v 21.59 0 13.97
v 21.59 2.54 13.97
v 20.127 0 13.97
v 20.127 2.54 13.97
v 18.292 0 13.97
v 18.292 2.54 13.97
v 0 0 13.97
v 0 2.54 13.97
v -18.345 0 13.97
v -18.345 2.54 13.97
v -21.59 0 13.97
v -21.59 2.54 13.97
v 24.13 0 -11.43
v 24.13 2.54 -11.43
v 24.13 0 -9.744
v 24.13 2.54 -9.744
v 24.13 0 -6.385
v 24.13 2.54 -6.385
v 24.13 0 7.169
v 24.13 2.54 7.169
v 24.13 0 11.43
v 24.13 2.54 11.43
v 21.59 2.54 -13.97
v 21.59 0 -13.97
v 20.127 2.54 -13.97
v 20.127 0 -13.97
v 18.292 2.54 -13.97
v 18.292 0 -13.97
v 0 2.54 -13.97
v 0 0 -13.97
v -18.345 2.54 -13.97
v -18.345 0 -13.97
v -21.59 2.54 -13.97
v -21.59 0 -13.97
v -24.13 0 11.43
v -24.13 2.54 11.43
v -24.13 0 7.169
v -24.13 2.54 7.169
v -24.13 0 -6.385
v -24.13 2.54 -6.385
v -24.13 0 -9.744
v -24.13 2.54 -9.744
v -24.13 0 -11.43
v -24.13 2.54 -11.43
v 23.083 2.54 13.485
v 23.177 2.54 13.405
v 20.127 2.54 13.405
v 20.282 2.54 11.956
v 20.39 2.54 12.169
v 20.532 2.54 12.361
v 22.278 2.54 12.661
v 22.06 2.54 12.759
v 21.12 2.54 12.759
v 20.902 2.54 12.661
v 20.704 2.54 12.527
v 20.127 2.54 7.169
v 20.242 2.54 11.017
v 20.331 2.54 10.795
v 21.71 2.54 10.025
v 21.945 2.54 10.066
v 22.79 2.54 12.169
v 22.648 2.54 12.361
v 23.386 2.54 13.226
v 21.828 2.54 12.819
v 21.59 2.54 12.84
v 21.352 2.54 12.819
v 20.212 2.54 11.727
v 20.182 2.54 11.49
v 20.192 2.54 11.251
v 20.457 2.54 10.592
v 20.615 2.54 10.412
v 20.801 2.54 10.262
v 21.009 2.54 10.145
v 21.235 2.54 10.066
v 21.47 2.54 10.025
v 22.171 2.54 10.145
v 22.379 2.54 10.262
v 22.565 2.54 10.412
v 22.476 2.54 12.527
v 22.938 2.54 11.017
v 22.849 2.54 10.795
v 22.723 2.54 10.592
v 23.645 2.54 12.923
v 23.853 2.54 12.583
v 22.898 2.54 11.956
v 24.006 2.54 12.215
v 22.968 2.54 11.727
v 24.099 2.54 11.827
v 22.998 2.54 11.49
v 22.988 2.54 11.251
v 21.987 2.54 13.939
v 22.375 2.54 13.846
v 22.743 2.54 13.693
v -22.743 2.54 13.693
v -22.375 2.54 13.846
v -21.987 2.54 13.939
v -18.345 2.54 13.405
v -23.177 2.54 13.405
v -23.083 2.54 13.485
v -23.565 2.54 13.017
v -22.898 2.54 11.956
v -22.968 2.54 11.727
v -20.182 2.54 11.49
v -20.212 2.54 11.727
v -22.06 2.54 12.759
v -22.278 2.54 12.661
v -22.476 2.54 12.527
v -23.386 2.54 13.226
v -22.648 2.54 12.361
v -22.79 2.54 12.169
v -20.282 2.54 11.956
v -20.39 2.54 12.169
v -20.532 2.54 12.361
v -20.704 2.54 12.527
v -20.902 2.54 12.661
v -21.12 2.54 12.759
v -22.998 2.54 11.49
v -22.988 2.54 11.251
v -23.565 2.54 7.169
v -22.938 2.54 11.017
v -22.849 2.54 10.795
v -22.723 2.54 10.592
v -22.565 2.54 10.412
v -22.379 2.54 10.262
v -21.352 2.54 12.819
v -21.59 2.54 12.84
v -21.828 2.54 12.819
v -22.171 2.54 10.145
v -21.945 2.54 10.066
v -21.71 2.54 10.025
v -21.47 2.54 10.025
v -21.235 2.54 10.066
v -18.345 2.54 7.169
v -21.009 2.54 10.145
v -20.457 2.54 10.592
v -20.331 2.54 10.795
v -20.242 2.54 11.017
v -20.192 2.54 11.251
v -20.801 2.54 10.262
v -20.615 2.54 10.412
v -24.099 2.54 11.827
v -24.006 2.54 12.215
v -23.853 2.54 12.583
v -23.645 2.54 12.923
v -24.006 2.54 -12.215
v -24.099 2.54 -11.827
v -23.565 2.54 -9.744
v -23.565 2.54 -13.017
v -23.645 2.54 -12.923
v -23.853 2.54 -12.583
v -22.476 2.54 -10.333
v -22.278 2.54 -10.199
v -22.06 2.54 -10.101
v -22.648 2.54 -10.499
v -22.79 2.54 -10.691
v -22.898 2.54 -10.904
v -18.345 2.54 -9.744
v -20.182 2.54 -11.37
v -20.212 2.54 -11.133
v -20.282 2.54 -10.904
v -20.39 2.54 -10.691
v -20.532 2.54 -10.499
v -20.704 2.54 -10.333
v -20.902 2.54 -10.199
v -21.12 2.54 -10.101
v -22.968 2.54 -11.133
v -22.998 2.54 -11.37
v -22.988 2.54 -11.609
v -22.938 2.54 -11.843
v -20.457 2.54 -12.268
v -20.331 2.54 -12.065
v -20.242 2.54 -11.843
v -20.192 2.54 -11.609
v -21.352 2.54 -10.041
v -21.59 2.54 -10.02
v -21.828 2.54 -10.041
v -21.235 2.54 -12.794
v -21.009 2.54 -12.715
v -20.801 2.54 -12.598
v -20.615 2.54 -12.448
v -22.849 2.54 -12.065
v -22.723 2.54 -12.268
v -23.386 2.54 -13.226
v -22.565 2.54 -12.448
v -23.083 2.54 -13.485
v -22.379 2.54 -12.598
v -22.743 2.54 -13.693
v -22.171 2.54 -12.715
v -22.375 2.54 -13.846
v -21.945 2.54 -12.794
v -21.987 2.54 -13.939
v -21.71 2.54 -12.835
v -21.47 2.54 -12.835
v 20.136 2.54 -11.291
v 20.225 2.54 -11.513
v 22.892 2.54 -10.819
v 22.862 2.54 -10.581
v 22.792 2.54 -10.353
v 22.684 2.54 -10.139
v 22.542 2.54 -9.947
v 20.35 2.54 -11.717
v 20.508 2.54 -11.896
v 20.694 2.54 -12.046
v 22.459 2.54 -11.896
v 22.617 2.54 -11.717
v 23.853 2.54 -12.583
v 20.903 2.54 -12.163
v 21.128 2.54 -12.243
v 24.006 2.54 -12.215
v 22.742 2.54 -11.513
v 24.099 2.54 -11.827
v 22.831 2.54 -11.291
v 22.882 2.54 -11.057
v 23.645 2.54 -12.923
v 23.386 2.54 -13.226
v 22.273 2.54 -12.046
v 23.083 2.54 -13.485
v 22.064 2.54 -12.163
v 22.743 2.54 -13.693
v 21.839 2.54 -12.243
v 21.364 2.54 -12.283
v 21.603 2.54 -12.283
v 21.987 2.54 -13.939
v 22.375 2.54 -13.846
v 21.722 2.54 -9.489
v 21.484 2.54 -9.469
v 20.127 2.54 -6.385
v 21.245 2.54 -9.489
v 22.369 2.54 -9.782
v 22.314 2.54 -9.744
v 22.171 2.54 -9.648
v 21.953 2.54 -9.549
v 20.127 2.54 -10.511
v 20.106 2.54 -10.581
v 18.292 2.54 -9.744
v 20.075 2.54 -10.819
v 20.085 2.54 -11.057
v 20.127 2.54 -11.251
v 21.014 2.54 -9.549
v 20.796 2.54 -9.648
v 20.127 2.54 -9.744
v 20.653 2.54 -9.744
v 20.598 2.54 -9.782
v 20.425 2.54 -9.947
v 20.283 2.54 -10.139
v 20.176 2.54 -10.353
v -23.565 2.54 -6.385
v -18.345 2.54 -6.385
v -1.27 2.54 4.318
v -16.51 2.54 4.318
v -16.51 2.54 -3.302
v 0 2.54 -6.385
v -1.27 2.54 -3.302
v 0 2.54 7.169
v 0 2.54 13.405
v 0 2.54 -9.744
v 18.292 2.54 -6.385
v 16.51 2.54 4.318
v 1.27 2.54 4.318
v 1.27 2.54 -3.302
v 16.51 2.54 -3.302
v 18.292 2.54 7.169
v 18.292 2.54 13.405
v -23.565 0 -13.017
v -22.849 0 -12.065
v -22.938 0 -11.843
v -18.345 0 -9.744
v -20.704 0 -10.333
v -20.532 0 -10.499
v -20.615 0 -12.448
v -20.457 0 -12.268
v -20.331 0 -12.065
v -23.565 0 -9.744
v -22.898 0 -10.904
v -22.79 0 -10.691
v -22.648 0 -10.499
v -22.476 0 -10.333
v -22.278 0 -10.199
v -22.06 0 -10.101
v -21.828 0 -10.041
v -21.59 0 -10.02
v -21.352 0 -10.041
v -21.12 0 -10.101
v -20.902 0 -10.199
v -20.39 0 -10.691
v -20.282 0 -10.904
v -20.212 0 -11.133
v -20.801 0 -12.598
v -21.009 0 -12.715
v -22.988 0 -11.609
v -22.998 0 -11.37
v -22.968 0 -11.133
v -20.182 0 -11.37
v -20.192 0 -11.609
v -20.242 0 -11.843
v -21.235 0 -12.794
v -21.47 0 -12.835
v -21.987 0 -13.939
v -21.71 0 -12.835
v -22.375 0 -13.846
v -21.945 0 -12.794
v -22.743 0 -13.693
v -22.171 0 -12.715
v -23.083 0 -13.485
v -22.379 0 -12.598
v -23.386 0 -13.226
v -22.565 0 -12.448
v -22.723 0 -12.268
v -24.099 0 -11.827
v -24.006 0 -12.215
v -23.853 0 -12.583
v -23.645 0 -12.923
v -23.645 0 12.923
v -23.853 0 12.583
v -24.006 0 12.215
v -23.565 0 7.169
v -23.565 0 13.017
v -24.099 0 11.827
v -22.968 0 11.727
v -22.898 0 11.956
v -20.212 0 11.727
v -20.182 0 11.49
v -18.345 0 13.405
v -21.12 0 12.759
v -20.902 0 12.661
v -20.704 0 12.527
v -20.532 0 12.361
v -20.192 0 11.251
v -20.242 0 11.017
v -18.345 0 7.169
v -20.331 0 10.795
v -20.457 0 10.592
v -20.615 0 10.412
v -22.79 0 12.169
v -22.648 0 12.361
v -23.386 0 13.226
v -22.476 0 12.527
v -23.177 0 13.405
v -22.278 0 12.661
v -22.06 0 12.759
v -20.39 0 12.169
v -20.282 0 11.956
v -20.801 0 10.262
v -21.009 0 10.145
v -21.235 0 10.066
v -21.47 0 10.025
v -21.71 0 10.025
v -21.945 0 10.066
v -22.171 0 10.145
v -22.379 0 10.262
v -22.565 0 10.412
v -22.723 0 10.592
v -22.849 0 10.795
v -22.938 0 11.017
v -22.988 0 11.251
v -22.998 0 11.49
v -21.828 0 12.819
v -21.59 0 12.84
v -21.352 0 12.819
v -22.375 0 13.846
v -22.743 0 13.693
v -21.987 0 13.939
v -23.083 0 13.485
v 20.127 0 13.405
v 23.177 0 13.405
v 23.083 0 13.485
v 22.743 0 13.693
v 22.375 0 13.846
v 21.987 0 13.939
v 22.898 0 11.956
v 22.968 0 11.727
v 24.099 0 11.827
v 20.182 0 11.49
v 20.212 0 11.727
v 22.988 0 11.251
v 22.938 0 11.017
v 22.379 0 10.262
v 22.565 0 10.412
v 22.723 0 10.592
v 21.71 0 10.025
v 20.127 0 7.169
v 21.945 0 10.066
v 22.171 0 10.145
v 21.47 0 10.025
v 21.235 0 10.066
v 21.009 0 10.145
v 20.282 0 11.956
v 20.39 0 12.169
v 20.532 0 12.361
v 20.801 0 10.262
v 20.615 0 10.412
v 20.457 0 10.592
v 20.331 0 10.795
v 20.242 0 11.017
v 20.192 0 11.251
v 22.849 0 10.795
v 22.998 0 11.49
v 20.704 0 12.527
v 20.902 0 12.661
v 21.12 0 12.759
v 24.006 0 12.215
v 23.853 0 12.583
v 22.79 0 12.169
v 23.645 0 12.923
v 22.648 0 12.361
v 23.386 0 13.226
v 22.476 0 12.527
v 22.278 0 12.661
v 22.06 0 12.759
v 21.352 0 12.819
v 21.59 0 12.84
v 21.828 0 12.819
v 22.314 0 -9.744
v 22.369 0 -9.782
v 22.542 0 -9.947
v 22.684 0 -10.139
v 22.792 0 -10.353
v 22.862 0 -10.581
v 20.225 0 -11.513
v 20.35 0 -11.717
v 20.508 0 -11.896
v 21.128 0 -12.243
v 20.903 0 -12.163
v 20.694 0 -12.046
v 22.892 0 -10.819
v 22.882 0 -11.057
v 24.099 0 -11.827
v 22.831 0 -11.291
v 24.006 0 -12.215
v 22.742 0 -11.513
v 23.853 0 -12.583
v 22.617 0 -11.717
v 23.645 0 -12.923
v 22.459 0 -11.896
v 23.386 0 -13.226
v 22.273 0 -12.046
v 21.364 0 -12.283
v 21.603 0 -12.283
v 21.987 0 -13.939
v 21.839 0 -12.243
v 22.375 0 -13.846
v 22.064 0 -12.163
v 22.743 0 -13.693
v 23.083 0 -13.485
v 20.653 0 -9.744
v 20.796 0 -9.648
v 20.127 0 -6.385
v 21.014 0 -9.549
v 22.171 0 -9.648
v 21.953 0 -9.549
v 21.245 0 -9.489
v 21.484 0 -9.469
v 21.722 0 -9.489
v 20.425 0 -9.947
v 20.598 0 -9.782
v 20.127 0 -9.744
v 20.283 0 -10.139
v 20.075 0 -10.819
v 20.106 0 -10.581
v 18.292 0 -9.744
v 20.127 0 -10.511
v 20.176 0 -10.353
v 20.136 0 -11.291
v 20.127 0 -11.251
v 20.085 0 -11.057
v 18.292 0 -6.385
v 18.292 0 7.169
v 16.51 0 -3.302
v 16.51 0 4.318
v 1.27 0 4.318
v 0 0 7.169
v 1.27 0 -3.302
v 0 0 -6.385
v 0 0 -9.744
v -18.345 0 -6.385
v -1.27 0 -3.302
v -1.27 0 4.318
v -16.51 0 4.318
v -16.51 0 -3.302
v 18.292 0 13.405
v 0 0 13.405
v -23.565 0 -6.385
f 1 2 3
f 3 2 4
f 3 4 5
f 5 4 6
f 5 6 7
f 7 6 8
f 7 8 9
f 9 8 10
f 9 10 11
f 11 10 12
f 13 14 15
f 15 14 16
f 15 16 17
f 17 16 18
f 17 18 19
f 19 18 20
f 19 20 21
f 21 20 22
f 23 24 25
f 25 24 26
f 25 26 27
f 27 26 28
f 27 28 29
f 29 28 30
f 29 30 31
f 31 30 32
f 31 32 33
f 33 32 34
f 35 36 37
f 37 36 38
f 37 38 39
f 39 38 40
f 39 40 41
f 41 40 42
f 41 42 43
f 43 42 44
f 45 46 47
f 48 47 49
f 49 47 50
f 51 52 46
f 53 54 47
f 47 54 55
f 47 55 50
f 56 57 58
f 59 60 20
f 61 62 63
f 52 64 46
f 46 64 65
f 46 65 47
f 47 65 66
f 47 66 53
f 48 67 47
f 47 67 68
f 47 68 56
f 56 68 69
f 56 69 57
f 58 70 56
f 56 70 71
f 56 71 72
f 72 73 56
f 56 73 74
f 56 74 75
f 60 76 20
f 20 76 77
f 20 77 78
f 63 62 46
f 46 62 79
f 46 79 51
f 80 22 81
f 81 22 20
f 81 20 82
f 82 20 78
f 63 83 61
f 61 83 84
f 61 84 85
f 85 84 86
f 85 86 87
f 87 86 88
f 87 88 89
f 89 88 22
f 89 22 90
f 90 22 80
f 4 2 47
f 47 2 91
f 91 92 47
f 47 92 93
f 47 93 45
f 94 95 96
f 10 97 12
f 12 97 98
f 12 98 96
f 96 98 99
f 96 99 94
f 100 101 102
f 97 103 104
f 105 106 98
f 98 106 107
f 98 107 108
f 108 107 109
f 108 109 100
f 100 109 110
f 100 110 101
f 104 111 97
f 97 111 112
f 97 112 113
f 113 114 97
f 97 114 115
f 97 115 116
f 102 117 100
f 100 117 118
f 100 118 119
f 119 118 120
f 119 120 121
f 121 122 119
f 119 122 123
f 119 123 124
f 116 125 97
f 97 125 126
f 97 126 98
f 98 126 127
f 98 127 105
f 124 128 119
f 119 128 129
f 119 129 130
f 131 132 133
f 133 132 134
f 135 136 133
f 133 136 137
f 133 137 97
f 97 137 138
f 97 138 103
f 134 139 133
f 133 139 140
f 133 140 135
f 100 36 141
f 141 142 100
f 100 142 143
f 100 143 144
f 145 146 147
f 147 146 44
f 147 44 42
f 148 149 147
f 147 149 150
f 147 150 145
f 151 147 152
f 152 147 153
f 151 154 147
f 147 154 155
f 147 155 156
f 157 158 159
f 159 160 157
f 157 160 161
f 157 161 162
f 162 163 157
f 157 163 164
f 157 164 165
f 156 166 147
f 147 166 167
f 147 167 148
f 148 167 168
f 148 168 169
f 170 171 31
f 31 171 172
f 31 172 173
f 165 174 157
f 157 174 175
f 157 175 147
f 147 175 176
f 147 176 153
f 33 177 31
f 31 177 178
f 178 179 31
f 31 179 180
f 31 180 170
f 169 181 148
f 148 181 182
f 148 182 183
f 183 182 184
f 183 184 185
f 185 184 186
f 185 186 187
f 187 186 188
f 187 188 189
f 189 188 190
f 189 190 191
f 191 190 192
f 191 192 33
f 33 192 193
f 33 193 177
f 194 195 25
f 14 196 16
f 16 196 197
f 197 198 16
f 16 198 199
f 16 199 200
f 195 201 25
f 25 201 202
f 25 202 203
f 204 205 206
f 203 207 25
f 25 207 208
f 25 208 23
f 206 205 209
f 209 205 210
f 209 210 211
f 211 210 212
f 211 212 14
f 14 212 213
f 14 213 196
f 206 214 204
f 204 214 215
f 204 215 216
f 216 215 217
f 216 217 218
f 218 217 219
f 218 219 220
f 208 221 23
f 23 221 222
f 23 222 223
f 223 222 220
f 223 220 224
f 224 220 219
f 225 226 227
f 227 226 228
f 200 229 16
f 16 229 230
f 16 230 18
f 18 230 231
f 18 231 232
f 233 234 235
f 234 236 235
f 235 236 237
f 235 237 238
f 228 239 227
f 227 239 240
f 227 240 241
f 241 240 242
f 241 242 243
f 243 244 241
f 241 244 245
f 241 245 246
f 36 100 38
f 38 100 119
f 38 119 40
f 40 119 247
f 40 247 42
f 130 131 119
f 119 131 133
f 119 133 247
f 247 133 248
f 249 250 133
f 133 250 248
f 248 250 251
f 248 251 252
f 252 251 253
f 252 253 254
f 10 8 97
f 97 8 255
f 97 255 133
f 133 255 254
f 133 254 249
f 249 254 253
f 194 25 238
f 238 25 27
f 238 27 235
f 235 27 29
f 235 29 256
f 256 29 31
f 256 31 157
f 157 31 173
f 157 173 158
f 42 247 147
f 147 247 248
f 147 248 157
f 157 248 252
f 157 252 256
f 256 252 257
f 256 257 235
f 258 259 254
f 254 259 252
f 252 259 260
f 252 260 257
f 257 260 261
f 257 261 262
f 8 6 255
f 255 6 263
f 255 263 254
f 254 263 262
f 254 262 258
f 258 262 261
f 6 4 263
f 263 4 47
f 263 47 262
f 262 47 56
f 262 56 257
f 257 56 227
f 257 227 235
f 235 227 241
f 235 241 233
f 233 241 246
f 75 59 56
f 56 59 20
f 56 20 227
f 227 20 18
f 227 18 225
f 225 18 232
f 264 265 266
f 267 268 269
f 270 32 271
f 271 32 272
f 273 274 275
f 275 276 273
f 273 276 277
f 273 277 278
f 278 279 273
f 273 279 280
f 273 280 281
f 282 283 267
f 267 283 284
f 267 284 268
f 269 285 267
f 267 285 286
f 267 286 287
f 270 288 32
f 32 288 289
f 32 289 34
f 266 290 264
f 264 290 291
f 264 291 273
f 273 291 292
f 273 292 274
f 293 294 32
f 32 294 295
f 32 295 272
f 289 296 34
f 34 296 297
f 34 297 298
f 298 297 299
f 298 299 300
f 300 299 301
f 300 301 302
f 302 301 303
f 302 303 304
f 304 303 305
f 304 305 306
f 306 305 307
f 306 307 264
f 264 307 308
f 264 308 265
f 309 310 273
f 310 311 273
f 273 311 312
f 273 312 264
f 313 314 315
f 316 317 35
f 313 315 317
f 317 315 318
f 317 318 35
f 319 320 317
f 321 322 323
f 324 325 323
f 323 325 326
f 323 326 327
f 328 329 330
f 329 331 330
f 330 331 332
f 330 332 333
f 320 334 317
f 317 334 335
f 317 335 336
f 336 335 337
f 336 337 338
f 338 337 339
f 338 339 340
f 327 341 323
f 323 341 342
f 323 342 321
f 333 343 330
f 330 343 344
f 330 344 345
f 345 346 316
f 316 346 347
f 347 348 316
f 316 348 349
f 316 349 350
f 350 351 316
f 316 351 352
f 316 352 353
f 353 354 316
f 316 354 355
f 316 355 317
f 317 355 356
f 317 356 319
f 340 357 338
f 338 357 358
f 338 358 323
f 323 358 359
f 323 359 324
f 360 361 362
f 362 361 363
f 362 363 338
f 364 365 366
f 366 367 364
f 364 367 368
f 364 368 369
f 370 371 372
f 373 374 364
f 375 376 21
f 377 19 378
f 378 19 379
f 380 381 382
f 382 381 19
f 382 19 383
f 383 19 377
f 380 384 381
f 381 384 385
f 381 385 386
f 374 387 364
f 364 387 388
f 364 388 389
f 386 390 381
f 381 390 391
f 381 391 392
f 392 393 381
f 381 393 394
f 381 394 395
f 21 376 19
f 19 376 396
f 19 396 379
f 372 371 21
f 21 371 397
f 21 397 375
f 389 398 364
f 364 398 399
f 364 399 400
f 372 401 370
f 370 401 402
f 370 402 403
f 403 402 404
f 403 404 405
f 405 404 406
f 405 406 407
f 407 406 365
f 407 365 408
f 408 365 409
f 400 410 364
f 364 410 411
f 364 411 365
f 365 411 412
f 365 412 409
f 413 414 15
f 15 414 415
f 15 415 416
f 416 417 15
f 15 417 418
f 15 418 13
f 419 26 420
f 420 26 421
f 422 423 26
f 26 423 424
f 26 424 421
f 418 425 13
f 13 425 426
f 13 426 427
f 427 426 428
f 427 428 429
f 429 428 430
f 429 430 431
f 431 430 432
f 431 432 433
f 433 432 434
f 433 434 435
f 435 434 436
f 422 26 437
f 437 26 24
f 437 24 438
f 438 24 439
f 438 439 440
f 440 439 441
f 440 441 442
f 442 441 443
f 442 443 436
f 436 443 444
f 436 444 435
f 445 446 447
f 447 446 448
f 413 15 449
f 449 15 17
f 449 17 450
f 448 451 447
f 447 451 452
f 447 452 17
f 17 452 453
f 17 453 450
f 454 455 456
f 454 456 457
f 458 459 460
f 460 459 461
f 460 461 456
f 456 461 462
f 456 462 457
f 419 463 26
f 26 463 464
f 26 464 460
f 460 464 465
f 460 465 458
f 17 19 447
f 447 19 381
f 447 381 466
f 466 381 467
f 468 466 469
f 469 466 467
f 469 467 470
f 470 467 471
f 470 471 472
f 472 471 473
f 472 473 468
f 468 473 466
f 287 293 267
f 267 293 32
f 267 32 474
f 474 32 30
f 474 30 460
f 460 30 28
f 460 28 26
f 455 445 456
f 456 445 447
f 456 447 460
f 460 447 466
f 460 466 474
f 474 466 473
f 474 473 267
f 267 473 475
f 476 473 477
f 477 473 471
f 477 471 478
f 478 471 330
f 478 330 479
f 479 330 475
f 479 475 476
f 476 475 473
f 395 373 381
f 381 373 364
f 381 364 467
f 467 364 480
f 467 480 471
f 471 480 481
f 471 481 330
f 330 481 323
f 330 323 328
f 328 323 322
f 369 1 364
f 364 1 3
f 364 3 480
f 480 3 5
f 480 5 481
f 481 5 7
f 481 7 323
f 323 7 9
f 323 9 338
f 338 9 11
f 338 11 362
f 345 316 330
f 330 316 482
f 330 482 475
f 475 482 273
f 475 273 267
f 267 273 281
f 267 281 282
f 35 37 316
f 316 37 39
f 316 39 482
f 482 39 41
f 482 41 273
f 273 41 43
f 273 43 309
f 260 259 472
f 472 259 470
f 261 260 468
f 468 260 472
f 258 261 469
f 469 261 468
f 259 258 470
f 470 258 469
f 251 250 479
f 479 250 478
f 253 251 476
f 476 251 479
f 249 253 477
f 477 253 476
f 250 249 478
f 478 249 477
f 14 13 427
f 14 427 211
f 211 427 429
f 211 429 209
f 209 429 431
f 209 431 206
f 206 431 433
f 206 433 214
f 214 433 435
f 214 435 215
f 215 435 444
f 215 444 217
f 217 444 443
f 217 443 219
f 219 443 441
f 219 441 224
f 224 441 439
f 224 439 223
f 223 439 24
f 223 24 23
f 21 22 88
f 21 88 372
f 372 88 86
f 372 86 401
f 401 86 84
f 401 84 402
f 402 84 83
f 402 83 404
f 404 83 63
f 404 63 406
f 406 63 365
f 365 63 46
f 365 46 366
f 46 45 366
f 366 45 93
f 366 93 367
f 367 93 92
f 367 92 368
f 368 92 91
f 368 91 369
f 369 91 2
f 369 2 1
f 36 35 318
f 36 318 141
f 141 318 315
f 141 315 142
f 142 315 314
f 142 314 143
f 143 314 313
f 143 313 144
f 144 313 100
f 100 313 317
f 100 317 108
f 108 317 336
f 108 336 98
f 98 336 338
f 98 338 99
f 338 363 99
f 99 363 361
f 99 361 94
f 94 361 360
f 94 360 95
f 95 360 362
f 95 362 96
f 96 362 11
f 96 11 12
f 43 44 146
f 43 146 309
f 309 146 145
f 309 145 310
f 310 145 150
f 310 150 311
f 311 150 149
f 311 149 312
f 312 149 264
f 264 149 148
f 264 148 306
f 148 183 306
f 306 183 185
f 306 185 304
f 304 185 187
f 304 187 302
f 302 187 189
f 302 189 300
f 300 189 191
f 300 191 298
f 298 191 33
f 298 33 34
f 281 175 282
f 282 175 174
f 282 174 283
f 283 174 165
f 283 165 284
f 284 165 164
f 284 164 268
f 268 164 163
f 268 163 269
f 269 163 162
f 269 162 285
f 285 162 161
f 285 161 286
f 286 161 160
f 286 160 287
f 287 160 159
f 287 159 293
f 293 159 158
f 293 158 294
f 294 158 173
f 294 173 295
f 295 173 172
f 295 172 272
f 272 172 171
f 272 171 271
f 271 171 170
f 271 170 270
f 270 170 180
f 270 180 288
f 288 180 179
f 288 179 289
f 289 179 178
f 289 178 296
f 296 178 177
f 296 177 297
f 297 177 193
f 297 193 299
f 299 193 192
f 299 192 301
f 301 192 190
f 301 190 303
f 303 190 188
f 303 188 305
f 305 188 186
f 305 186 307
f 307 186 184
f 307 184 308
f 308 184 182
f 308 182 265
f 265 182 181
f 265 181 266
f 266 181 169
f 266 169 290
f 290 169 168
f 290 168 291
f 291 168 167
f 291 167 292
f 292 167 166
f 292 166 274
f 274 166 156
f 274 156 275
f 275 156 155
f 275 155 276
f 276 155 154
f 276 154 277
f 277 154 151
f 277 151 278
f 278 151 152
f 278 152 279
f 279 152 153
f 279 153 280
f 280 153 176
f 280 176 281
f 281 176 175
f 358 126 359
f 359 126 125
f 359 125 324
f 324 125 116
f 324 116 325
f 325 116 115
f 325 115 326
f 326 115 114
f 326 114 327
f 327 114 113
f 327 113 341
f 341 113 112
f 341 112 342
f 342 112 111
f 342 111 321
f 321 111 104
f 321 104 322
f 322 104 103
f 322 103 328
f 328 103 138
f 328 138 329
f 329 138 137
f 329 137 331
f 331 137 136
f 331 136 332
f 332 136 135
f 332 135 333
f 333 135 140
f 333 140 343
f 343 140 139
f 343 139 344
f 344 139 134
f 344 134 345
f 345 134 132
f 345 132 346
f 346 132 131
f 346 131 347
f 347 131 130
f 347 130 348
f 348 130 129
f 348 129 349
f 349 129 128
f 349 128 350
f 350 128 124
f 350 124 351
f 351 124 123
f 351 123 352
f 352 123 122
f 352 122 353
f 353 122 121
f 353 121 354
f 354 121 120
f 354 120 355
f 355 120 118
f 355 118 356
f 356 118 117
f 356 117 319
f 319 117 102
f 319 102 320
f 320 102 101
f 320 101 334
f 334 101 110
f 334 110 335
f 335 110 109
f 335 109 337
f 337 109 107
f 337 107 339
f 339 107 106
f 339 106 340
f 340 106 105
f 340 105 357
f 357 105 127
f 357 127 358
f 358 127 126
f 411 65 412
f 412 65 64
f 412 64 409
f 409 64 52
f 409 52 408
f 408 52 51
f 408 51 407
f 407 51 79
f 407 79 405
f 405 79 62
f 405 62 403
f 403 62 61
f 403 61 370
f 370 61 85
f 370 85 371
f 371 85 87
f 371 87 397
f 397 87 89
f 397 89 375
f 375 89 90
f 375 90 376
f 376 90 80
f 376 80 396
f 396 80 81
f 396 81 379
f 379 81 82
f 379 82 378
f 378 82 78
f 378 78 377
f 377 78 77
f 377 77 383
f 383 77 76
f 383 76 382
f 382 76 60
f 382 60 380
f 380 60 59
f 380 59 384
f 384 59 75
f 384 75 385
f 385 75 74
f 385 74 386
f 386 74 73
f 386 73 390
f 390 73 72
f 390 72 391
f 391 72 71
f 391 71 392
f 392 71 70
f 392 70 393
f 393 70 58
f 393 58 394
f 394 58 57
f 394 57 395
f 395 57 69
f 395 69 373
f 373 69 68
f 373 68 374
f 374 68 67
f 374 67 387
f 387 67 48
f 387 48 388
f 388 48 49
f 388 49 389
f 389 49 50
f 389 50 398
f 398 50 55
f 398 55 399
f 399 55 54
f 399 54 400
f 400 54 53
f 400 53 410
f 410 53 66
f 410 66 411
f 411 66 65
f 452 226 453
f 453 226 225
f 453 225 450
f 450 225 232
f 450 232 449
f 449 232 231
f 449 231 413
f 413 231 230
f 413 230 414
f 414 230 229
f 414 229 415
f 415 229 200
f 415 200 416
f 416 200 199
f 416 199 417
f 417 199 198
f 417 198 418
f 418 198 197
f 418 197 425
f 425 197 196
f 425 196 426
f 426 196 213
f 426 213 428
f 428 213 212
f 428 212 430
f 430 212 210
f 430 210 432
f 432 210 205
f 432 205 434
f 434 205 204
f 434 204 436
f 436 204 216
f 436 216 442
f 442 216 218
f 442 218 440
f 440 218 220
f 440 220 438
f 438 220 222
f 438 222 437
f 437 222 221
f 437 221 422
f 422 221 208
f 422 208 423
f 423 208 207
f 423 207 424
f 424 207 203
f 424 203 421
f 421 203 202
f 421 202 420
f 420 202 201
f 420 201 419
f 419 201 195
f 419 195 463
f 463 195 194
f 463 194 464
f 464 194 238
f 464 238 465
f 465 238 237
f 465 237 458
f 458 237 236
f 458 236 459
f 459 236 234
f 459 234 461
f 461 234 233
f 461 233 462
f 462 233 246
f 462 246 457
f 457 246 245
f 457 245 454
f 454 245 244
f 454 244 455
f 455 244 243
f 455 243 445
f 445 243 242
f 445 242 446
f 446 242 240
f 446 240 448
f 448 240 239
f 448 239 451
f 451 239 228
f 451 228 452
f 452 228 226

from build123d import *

# Parameters (mm, degrees)
SKETCH1_W                   = 48.26
SKETCH1_H                   = 27.94
BOSS_EXTRUDE1_DEPTH         = 2.54
SKETCH2_W                   = 15.24
SKETCH2_H                   = 7.62
CUT_EXTRUDE1_DEPTH          = 15.494
FILLET1_R                   = 2.54
F_34_0_111_DIAMETER_HOLE1_D = 2.8194


with BuildPart() as part:
    # Sketch1 → Boss-Extrude1 (new body)
    with BuildSketch(Plane(origin=(0, 0, 0), x_dir=(1, 0, 0), z_dir=(0, 1, 0))):
        Rectangle(SKETCH1_W, SKETCH1_H)
    extrude(amount=BOSS_EXTRUDE1_DEPTH)

    # Sketch2 → Cut-Extrude1 (cut)
    with BuildSketch(Plane(origin=(0, 2.54, 0), x_dir=(1, 0, 0), z_dir=(0, 1, 0))):
        with Locations((-8.89, -0.508)):
            Rectangle(SKETCH2_W, SKETCH2_H)
        with Locations((8.89, -0.508)):
            Rectangle(SKETCH2_W, SKETCH2_H)
    extrude(amount=-CUT_EXTRUDE1_DEPTH, mode=Mode.SUBTRACT)

    # Fillet1
    fillet1_edges = [part.edges().sort_by_distance(p)[0] for p in [
        (-24.13, 1.27, 13.97),
        (-24.13, 1.27, -13.97),
        (24.13, 1.27, -13.97),
        (24.13, 1.27, 13.97),
    ]]
    fillet(fillet1_edges, radius=FILLET1_R)

    # #34 (0.111) Diameter Hole1 (through all)
    with Locations(Plane(origin=(0, 2.54, 0), x_dir=(1, 0, 0), z_dir=(0, 1, 0))):
        with Locations((21.483576639, 10.878336476), (21.59, -11.43), (-21.59, -11.43), (-21.59, 11.43)):
            Hole(F_34_0_111_DIAMETER_HOLE1_D / 2)


solid = part.part
